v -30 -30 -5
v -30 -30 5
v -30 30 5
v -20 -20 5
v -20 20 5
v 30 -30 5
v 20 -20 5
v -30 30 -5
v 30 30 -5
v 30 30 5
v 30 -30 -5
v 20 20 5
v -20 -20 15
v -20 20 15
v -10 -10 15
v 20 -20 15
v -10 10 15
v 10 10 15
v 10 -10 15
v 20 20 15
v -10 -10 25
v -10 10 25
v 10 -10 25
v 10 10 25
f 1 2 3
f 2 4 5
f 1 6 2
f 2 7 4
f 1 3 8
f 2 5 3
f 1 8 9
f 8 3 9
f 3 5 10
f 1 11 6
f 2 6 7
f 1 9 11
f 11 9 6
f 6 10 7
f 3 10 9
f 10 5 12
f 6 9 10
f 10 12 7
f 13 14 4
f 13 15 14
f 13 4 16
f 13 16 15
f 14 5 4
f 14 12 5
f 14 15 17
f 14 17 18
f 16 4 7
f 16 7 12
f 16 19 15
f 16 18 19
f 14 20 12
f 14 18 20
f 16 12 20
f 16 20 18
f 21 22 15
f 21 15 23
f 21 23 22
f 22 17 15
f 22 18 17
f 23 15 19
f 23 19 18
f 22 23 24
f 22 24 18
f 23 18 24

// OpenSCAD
cube([60, 60, 10], center = true);
translate([0, 0, 10]) cube([40, 40, 10], center = true);
translate([0, 0, 20]) cube([20, 20, 10], center = true);
